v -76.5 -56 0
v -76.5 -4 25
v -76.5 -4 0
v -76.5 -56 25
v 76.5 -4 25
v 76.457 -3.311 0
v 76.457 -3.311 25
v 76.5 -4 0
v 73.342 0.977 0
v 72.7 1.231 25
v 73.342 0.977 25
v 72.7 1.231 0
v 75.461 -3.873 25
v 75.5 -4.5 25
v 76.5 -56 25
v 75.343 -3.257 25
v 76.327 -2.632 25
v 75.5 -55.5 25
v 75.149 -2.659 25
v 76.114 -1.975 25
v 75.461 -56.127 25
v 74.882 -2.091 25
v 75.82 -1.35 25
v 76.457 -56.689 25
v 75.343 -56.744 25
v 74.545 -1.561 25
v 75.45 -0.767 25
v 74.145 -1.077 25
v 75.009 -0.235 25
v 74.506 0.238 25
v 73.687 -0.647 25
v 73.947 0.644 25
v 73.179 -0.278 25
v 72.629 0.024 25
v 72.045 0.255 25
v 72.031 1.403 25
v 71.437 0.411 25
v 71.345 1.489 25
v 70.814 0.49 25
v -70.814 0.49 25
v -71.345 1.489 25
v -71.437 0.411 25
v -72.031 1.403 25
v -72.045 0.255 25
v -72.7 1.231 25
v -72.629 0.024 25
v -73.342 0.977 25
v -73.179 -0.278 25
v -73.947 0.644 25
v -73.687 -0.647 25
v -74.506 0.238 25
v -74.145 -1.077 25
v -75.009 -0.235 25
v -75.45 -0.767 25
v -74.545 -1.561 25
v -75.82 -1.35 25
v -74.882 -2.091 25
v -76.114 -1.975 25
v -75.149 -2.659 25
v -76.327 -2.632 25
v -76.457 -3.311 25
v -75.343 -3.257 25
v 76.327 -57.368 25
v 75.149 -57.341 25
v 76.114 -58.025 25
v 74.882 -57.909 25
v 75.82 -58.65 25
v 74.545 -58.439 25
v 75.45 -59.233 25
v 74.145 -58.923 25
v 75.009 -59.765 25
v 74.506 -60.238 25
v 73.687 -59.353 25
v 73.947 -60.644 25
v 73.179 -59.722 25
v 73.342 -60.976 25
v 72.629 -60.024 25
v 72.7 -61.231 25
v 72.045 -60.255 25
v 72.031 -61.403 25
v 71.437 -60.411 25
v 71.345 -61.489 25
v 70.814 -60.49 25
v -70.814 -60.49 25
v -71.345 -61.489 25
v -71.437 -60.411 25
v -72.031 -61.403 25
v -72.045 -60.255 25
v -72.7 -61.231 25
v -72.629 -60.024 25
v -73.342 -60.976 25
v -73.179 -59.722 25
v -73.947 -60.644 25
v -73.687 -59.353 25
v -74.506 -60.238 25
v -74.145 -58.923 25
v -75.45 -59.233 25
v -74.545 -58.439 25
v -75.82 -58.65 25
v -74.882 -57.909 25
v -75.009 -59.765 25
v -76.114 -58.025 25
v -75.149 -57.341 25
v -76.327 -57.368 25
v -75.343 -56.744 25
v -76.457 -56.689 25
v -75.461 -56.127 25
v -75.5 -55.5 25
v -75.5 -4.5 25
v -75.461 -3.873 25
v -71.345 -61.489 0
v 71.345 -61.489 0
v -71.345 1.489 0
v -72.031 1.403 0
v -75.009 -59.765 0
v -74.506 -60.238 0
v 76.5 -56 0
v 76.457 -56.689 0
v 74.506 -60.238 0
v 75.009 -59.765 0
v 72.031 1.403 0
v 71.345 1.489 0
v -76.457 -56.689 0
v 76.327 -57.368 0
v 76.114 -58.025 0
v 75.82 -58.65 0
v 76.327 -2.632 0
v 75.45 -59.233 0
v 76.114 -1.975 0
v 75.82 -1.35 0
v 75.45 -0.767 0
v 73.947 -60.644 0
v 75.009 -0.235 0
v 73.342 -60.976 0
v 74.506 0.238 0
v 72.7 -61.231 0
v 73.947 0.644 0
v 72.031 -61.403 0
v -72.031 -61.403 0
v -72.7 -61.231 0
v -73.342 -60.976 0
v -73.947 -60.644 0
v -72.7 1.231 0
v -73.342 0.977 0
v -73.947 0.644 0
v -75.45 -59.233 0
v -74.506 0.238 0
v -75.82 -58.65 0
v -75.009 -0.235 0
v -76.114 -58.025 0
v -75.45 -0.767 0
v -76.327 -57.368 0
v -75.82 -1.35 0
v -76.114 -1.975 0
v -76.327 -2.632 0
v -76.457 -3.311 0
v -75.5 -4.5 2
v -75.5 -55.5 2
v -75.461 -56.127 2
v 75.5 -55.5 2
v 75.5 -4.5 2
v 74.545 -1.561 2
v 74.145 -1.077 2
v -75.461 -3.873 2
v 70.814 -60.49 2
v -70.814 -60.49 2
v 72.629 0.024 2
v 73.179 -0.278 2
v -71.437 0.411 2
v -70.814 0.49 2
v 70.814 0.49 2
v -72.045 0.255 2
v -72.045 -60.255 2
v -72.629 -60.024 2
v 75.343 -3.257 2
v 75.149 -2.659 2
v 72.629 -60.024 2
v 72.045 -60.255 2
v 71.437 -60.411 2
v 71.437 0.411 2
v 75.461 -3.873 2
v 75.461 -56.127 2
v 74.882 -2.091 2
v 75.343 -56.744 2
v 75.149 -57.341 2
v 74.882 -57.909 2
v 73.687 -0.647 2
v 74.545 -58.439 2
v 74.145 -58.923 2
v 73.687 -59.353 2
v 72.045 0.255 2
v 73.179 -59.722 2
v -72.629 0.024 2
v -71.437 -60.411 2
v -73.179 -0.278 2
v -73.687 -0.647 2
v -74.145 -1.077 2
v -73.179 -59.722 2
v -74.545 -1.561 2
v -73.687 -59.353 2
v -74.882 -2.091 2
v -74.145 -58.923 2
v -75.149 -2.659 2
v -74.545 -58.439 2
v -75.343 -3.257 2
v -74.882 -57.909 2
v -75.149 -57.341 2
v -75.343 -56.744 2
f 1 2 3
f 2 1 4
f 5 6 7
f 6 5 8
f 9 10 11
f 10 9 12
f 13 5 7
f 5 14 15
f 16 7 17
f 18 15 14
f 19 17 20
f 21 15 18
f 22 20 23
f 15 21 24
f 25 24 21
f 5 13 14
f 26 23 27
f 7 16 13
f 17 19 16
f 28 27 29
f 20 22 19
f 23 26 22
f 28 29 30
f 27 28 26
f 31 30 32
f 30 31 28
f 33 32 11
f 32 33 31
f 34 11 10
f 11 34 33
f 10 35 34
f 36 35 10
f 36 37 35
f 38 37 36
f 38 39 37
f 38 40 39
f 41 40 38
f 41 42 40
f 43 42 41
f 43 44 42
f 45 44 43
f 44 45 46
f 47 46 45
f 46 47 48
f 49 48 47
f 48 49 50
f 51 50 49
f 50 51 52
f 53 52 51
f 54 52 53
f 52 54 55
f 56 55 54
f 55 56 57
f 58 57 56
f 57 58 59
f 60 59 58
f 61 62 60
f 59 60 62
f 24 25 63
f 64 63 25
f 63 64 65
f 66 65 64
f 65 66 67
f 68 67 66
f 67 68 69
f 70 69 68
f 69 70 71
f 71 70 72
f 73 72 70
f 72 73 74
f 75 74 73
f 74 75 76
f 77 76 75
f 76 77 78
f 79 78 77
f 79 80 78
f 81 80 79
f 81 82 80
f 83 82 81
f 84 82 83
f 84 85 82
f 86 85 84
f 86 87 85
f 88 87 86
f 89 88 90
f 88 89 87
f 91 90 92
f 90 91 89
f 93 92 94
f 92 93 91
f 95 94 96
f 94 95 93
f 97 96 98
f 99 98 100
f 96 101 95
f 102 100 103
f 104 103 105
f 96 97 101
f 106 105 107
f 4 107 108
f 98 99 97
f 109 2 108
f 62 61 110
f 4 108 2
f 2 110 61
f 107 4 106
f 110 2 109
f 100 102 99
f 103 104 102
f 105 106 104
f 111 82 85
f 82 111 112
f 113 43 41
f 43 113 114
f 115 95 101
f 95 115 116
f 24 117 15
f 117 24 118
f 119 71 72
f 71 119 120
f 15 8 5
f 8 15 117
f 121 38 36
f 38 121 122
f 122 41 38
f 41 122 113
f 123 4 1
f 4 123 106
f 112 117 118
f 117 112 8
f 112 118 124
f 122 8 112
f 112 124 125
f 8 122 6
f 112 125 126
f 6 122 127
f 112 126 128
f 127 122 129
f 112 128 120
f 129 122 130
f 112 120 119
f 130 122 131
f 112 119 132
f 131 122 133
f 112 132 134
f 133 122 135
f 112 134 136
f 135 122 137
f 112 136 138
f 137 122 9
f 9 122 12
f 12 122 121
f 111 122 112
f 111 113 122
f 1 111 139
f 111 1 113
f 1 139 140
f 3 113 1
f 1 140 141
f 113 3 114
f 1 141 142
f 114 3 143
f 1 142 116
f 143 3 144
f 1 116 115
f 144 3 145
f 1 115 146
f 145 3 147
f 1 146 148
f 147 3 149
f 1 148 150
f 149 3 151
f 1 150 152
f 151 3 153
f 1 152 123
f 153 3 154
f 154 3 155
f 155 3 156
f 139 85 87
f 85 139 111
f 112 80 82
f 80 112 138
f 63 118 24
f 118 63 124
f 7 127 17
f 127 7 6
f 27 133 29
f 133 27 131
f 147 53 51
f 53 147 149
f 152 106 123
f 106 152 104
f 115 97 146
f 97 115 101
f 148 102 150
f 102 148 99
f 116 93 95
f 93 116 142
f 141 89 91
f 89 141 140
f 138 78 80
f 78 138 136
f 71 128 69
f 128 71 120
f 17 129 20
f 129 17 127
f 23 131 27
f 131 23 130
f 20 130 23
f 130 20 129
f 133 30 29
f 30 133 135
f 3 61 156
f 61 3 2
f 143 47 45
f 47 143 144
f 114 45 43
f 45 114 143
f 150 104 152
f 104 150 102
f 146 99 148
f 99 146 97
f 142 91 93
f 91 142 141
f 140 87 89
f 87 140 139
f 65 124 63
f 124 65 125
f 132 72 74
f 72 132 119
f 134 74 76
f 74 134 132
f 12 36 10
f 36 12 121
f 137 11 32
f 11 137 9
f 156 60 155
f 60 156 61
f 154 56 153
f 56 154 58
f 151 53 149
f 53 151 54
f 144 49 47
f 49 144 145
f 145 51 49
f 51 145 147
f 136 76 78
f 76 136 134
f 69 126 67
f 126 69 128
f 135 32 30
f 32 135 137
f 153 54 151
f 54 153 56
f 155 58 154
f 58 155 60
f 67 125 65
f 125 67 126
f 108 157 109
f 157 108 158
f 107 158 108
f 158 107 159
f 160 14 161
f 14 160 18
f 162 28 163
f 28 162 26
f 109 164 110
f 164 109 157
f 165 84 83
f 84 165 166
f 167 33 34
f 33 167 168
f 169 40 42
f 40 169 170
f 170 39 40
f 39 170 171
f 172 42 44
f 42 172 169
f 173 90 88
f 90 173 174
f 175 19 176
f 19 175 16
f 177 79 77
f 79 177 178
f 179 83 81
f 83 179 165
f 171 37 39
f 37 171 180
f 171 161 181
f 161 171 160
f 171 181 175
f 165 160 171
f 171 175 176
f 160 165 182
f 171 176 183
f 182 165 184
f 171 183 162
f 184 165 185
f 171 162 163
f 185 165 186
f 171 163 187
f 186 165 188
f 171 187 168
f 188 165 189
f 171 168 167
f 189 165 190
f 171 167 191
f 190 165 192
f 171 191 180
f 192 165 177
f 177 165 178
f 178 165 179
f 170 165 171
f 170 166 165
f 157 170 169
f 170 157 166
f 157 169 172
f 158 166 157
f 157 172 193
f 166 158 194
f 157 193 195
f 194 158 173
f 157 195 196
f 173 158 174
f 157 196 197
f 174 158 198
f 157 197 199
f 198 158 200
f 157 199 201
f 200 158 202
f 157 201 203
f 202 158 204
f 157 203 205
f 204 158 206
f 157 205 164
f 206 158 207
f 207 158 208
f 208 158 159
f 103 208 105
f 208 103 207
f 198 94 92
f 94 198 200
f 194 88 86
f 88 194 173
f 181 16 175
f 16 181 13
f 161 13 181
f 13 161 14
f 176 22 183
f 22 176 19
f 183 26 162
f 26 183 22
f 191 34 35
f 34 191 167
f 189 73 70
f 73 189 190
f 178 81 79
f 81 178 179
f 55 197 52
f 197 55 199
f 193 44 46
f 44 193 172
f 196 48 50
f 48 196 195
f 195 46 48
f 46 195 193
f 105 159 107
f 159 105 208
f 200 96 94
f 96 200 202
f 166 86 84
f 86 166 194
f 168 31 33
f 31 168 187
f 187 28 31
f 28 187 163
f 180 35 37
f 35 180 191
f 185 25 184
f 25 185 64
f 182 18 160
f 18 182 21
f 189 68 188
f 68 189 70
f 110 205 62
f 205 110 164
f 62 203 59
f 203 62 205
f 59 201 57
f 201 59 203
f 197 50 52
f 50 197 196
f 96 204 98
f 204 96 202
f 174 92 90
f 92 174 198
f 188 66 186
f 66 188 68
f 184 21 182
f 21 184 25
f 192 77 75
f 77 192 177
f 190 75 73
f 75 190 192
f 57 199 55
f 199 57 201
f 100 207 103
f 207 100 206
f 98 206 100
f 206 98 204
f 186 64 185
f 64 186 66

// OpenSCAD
$fn = 50;


difference() {
	union() {
		translate(v = [0, -30.0000000000, 0]) {
			hull() {
				translate(v = [-71.0000000000, 26.0000000000, 0]) {
					cylinder(h = 25, r = 5.5000000000);
				}
				translate(v = [71.0000000000, 26.0000000000, 0]) {
					cylinder(h = 25, r = 5.5000000000);
				}
				translate(v = [-71.0000000000, -26.0000000000, 0]) {
					cylinder(h = 25, r = 5.5000000000);
				}
				translate(v = [71.0000000000, -26.0000000000, 0]) {
					cylinder(h = 25, r = 5.5000000000);
				}
			}
		}
	}
	union() {
		translate(v = [0, -30.0000000000, 2]) {
			hull() {
				translate(v = [-70.5000000000, 25.5000000000, 0]) {
					cylinder(h = 50, r = 5);
				}
				translate(v = [70.5000000000, 25.5000000000, 0]) {
					cylinder(h = 50, r = 5);
				}
				translate(v = [-70.5000000000, -25.5000000000, 0]) {
					cylinder(h = 50, r = 5);
				}
				translate(v = [70.5000000000, -25.5000000000, 0]) {
					cylinder(h = 50, r = 5);
				}
			}
		}
	}
}
